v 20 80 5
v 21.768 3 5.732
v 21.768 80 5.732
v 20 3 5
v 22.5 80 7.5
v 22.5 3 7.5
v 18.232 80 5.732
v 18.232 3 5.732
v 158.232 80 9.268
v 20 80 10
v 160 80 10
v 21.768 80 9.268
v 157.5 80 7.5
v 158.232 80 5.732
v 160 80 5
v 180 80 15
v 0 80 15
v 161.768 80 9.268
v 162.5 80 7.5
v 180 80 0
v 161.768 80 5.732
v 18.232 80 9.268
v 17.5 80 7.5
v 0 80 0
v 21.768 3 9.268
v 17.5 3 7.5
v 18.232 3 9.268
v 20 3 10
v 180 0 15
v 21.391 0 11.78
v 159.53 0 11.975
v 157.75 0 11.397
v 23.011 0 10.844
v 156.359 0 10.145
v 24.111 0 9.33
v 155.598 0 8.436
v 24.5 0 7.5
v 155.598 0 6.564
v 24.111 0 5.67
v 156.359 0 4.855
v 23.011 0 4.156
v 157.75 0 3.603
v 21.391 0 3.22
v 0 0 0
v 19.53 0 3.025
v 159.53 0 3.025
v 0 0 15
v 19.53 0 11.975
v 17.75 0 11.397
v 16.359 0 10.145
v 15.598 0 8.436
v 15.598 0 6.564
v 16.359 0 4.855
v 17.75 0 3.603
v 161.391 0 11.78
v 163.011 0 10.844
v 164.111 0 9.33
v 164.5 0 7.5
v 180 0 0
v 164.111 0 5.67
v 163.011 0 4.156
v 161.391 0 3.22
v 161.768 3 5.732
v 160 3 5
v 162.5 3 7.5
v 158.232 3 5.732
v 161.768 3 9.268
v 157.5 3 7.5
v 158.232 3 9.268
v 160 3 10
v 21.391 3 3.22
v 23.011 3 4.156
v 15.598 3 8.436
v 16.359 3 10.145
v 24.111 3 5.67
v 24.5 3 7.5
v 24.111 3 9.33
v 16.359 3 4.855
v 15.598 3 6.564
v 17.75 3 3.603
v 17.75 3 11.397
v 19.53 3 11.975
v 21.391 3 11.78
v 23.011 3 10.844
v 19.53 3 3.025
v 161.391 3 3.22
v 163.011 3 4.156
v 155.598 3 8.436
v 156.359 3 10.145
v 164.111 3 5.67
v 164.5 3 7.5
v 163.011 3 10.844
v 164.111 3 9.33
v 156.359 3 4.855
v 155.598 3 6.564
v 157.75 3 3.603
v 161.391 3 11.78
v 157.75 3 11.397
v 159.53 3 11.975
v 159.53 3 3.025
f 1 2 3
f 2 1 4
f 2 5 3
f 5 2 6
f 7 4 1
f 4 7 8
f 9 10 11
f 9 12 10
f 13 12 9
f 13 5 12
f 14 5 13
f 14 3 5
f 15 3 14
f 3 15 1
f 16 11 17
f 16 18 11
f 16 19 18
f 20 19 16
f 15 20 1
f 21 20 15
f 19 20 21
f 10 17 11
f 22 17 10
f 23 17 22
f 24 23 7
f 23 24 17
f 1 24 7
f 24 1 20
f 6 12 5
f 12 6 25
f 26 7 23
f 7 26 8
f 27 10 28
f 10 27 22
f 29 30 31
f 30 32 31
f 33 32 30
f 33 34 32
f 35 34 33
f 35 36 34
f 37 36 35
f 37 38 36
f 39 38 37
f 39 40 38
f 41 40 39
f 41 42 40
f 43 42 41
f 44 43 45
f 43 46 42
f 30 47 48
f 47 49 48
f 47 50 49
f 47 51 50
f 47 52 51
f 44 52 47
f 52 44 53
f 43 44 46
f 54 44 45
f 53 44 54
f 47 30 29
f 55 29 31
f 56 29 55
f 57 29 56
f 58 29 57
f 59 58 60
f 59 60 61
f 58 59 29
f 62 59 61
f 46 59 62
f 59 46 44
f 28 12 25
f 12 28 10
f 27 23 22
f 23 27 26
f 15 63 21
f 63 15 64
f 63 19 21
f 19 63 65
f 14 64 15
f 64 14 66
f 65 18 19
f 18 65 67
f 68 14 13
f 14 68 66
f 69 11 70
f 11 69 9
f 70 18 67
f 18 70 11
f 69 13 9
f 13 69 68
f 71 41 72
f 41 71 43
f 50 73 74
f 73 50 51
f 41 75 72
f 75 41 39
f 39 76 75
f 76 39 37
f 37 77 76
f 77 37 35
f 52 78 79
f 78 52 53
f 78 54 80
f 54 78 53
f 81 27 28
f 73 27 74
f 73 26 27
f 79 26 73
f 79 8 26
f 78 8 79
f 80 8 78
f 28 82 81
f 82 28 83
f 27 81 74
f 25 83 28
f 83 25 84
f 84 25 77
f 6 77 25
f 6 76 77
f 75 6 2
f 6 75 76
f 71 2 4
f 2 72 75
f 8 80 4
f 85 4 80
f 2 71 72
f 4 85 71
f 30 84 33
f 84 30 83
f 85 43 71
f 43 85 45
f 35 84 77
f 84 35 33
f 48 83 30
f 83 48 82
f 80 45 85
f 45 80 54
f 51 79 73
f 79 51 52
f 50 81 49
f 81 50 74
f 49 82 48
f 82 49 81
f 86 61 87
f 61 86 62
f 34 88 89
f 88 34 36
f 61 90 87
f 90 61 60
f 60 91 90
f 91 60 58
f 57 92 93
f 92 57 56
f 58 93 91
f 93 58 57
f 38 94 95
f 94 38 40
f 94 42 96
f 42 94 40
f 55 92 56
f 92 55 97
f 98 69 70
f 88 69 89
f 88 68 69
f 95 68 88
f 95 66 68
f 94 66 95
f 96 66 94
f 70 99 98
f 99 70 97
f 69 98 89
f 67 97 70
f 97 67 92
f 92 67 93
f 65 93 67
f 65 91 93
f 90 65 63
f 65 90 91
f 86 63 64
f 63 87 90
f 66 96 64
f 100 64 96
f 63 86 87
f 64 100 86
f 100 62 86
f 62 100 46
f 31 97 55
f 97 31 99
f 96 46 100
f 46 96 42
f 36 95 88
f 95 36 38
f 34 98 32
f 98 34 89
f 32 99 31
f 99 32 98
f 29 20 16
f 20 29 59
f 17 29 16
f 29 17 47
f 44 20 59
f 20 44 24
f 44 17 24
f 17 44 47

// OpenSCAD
// Simple shelf with drywall mounting holes
// dimensions in millimeters

length = 180;
depth = 80;
thickness = 15;

hole_d = 5;
head_d = 9;
head_depth = 3;
offset = 20;

module shelf() {
    difference() {
        cube([length, depth, thickness]);
        for (x = [offset, length - offset])
            translate([x, 0, thickness / 2])
                rotate([-90, 0, 0])
                    cylinder(h = depth, d = hole_d);
        for (x = [offset, length - offset])
            translate([x, 0, thickness / 2])
                rotate([-90, 0, 0])
                    cylinder(h = head_depth, d = head_d);
    }
}

shelf();
